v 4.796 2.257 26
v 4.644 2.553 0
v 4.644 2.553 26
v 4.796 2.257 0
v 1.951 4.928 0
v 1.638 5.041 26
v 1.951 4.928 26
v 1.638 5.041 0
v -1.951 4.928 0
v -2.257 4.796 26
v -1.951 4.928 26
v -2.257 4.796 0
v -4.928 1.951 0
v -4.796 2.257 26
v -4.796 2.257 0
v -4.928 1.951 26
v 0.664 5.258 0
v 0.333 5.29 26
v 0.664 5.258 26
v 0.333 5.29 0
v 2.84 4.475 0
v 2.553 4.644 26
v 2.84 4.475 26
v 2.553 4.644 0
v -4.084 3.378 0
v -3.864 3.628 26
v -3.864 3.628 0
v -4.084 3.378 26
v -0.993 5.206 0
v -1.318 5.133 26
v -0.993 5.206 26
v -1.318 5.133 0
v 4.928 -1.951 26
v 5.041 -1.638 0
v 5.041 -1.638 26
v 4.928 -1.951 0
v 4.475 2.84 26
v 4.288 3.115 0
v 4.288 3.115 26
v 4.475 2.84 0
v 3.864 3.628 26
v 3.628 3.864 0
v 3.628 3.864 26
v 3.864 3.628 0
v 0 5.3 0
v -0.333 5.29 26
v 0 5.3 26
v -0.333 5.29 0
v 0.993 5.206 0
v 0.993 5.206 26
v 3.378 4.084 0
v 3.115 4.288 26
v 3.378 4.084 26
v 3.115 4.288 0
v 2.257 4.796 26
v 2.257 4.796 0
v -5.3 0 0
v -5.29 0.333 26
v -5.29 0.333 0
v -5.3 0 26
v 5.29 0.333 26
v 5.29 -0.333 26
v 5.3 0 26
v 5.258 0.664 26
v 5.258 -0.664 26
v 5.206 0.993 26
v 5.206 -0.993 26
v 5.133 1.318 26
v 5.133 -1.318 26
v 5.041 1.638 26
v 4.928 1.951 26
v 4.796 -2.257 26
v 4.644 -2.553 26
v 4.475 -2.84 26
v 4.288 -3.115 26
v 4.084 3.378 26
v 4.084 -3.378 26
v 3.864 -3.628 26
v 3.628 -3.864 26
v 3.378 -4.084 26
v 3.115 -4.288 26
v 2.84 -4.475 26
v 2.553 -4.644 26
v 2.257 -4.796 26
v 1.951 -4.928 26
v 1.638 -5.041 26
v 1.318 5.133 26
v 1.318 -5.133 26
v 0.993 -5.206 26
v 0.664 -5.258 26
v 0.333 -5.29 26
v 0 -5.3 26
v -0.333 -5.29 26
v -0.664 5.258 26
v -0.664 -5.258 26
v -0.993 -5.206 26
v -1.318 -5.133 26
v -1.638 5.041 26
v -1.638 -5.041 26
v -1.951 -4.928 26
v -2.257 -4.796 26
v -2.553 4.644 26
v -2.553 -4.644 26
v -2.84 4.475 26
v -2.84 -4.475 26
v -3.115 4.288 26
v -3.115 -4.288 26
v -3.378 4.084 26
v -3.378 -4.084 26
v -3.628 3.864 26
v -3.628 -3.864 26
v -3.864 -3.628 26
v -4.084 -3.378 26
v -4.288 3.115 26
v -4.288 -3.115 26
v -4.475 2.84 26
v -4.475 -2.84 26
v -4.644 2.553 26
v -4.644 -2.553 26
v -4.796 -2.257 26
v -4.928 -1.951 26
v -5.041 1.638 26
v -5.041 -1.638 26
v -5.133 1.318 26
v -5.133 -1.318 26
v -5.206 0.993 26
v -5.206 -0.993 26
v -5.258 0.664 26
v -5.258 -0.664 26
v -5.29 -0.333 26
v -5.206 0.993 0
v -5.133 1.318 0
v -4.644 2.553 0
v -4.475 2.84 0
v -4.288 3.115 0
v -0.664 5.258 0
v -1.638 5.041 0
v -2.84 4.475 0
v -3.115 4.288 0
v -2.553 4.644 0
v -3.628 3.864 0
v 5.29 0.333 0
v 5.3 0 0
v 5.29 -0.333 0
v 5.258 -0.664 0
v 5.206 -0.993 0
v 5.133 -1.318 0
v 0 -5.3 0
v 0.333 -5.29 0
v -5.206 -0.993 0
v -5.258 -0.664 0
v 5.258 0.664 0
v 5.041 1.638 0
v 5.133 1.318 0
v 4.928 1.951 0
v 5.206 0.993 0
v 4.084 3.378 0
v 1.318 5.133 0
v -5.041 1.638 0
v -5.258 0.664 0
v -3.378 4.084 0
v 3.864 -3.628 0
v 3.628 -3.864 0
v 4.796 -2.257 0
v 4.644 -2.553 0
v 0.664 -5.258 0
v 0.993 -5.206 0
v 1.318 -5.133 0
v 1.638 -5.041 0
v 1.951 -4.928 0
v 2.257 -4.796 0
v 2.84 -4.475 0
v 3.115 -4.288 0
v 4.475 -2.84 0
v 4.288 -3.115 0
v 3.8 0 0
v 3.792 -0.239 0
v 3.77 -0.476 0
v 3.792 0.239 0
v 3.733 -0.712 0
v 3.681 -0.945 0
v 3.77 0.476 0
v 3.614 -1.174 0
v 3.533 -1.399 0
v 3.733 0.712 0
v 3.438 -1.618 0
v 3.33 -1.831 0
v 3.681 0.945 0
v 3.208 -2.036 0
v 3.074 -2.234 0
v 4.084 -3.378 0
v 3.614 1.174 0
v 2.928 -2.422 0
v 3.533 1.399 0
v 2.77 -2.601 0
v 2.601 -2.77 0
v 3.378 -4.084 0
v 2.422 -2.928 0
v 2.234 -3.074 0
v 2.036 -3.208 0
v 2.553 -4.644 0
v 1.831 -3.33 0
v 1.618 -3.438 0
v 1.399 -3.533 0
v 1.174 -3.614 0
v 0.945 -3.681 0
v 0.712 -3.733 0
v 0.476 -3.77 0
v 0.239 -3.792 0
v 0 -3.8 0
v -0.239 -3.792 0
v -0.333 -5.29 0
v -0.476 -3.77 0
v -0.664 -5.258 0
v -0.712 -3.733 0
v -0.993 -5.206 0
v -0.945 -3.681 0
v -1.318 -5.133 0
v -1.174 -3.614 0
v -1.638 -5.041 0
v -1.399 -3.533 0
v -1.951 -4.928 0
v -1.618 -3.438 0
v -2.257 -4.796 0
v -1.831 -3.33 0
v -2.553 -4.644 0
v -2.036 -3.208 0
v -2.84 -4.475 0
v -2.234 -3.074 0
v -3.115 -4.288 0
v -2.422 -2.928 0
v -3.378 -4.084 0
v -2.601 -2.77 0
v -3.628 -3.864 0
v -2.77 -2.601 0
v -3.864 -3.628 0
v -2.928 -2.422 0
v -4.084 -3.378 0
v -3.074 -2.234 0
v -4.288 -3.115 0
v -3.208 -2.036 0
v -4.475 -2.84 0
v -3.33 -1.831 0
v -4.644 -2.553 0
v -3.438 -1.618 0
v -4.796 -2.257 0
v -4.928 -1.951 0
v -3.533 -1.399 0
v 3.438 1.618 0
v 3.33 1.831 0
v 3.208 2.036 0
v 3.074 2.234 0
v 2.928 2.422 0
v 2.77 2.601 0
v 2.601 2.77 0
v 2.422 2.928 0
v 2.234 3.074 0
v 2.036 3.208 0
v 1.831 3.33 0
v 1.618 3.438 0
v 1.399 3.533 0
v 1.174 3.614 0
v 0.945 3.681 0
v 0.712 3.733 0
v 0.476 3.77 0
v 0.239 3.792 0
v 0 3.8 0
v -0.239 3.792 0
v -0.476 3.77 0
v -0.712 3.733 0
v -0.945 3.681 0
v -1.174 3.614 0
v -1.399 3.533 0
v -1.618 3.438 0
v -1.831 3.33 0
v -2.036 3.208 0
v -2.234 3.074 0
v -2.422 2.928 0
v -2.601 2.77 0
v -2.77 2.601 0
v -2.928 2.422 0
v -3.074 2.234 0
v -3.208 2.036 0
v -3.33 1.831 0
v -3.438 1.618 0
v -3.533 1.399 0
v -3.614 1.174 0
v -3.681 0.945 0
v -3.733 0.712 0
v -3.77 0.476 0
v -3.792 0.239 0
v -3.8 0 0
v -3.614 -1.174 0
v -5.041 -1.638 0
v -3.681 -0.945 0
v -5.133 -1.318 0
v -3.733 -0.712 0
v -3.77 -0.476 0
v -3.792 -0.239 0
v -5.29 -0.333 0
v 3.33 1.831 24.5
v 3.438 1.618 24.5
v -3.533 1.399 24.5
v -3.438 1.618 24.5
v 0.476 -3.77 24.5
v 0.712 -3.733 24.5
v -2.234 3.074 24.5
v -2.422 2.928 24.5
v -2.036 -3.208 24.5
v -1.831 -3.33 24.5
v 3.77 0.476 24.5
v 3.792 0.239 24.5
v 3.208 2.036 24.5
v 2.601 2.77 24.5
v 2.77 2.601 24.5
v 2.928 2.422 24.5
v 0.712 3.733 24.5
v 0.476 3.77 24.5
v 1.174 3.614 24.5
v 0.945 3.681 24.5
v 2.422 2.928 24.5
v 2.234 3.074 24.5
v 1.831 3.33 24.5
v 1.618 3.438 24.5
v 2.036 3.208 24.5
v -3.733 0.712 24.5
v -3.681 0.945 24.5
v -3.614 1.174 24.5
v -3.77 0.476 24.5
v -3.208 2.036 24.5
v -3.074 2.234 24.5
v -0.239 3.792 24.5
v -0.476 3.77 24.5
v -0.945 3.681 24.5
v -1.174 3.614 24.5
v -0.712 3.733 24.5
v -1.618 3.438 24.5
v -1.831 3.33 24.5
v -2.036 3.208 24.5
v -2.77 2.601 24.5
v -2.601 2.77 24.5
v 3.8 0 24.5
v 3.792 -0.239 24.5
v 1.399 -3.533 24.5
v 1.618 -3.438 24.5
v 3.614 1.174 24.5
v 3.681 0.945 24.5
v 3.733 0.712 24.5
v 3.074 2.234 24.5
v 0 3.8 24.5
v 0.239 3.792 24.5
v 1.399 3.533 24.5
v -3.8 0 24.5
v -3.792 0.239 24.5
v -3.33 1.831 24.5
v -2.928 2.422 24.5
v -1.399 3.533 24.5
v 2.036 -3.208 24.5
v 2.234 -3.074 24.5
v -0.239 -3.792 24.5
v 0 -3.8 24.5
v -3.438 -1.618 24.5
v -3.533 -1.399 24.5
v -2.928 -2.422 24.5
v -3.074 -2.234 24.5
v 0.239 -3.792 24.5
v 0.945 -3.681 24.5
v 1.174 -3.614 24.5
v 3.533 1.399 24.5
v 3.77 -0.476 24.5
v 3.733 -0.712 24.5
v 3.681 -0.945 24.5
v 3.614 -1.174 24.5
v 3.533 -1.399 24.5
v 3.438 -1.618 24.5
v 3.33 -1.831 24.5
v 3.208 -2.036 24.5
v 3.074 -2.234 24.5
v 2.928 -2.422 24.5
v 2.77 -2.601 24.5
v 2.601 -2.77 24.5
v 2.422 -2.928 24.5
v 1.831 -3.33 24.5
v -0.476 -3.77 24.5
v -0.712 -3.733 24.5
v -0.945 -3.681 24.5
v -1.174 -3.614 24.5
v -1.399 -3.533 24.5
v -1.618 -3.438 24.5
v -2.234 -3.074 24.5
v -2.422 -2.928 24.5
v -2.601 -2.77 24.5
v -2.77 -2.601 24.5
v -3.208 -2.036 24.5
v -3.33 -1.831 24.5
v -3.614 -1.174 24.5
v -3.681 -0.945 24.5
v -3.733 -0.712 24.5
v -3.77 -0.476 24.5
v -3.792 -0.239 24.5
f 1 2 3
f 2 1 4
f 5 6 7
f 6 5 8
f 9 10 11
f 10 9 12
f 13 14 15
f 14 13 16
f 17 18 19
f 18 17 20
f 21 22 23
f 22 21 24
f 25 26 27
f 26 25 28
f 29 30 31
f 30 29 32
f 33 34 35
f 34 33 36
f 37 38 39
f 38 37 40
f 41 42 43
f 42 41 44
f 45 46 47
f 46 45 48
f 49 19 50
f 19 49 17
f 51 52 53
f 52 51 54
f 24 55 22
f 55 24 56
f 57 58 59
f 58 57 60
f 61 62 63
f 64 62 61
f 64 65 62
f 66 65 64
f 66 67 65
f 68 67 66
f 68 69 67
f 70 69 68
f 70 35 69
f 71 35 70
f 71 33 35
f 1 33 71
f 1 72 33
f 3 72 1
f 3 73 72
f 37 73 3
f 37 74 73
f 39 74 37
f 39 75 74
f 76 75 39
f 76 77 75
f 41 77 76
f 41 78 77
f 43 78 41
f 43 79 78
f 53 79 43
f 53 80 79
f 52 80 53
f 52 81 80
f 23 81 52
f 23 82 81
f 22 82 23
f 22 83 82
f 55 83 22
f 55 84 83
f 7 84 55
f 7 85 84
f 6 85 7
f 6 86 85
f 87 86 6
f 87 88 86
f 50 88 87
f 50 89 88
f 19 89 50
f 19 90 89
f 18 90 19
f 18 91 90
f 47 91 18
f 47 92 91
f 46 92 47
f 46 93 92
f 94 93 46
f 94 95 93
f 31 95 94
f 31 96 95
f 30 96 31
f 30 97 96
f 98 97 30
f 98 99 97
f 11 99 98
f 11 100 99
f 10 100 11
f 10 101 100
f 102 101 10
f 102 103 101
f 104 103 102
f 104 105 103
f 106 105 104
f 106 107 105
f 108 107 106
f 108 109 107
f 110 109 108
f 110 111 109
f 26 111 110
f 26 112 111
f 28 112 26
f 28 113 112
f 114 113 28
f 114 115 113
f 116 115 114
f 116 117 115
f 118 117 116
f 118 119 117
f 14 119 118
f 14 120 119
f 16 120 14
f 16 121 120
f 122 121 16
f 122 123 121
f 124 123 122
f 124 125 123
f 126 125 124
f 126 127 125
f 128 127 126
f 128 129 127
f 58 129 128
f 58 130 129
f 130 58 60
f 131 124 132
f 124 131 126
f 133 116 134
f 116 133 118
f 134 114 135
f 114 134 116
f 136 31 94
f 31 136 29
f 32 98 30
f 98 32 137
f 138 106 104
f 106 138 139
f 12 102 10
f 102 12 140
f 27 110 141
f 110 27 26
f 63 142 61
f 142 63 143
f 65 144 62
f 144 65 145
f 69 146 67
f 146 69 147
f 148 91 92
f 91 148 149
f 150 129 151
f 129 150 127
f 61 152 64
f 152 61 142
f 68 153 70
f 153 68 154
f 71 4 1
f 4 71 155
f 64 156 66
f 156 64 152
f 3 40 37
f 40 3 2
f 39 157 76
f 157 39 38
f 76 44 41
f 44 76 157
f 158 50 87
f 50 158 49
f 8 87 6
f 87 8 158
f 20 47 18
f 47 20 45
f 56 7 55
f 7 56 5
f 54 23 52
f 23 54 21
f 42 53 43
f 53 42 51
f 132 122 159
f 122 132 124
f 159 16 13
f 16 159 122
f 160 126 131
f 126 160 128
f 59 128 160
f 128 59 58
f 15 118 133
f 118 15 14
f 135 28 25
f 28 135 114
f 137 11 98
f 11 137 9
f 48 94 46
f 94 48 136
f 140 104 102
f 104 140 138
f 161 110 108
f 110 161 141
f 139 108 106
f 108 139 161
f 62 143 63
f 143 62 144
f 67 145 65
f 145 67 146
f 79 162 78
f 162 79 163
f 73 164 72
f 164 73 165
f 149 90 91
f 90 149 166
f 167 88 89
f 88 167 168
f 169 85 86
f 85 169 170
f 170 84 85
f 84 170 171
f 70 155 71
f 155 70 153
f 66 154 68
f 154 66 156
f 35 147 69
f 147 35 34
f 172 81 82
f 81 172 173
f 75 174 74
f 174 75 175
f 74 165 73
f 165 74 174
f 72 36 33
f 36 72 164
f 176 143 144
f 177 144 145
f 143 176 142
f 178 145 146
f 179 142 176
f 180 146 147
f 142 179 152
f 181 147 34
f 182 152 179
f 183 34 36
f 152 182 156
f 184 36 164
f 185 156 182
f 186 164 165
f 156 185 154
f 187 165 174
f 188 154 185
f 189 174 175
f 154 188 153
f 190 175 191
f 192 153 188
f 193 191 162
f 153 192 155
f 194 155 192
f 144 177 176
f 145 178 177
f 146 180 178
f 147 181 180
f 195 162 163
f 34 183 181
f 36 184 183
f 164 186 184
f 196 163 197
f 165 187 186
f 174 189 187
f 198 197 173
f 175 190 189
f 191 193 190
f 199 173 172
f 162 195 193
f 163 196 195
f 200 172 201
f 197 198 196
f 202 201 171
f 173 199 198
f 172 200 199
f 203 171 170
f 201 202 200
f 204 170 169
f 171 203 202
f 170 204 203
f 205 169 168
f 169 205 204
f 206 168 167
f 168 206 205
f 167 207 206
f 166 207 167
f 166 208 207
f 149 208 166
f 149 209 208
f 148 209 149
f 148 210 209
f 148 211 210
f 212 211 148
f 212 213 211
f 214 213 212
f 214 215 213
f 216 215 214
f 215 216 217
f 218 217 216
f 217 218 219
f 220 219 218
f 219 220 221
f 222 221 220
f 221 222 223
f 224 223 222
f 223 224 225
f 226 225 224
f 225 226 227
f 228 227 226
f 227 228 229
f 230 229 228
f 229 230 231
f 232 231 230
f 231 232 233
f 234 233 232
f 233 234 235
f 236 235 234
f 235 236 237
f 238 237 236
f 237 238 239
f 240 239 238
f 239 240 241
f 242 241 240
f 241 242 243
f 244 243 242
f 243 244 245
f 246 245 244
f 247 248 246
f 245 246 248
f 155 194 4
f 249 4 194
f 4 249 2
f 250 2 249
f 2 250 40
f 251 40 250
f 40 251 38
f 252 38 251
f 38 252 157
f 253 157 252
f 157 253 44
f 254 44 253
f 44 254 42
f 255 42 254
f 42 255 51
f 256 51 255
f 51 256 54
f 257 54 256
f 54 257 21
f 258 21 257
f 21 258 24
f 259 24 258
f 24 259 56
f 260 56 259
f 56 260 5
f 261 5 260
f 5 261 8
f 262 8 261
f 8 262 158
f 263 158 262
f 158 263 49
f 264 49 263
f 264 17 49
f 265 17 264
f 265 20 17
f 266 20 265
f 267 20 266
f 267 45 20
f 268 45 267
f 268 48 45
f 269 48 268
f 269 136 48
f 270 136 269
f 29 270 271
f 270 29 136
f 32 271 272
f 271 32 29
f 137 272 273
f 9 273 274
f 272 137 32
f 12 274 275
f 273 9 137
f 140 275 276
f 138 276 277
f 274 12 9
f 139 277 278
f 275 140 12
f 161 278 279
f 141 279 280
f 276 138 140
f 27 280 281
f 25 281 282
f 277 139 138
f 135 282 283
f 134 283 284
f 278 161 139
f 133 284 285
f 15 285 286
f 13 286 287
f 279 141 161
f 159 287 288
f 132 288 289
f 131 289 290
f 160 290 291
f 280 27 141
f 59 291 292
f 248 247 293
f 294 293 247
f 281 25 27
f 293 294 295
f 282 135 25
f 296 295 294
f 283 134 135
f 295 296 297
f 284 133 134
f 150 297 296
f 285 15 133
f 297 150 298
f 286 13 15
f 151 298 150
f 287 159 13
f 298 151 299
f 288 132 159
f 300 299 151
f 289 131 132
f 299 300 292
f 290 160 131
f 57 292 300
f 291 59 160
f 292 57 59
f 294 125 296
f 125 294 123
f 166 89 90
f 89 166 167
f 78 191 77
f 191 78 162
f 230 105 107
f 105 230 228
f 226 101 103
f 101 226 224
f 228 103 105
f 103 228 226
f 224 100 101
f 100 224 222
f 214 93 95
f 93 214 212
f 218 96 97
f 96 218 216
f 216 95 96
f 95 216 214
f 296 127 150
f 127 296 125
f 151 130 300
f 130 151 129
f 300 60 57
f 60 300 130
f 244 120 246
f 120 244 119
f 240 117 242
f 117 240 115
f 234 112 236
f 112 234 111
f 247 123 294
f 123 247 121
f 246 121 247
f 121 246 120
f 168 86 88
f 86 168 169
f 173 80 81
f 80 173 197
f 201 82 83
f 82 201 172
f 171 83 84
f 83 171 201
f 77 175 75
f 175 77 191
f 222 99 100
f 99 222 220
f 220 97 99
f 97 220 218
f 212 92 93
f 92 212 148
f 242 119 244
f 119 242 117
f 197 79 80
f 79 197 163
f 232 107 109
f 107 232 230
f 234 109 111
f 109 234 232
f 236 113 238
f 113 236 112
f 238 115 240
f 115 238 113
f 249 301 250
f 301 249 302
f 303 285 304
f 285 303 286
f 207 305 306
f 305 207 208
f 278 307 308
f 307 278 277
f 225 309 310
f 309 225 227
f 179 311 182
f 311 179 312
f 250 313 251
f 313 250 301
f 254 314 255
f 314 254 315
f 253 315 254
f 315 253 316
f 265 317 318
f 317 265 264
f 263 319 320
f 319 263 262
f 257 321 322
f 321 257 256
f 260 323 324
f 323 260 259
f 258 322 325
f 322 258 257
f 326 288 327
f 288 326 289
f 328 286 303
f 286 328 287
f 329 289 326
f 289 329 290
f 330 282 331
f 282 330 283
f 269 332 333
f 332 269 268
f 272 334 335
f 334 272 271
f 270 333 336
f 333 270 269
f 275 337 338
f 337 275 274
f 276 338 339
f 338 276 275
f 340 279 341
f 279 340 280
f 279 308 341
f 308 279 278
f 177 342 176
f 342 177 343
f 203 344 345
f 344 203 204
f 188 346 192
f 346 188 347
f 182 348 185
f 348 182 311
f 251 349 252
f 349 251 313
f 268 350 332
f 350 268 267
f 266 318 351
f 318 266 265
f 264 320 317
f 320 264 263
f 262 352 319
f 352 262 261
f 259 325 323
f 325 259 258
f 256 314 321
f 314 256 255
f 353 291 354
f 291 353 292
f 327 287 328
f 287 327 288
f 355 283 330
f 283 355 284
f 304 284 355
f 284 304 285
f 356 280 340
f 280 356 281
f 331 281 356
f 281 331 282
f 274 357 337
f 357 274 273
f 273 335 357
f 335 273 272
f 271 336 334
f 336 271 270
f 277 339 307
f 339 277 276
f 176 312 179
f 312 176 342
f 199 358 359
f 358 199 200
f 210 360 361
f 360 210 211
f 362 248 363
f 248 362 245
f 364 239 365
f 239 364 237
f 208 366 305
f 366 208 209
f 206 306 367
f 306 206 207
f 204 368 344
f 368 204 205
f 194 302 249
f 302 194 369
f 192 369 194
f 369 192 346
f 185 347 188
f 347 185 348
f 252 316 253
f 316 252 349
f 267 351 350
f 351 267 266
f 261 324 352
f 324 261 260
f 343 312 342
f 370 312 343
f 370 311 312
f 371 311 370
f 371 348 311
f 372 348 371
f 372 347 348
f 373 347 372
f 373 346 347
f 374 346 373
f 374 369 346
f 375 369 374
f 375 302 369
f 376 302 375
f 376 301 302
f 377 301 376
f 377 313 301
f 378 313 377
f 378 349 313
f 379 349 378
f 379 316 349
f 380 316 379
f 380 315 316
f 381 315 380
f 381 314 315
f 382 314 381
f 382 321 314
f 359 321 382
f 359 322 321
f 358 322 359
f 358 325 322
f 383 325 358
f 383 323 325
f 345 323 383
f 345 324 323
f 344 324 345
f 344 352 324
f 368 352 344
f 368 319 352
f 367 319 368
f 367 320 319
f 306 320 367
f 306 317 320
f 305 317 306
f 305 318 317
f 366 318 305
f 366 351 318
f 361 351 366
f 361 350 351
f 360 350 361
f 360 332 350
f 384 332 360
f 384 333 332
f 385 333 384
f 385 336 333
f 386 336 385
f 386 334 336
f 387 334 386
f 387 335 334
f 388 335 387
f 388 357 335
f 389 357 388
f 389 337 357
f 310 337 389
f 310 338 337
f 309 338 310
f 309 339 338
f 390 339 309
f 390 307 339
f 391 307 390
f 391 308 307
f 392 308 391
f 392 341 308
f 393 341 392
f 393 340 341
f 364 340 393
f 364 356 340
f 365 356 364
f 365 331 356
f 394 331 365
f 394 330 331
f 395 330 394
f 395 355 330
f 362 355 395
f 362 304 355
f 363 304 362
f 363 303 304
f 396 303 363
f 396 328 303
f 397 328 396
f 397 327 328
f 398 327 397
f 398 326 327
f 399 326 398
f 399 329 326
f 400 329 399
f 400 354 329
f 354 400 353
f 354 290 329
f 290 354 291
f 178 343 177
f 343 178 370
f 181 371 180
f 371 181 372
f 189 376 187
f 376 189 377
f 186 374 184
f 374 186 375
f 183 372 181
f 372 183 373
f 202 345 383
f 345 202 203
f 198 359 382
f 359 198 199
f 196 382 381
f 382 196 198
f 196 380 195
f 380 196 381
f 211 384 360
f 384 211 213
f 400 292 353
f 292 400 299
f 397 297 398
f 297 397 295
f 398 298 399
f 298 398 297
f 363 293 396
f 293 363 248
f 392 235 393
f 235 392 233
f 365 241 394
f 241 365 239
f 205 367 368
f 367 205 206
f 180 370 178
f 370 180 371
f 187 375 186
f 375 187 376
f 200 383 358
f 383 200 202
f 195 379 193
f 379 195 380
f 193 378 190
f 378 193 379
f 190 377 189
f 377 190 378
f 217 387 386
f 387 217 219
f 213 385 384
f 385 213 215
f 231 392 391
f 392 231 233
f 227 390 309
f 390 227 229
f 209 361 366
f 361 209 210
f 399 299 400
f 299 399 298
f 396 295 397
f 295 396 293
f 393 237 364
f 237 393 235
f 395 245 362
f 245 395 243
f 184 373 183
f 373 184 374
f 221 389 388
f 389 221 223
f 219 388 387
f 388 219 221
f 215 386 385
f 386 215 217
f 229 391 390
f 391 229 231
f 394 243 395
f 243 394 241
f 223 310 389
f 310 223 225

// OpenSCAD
// file: ../motor_housing.scad
/*
Title:          motor_housing.scad
Description:    encapsulation for the motors
Authors:        Pau Roura (@proura)
Date:           20180610
Version:        0.1
Notes:

    Default values for module motor_housing

    module motor_housing(
        w_walls=1.5,        //with of the walls
        d_motor=7.2,        //motor diameter
        h_motor_body=26,    //motor housing height
        d_motor_shaft=1     //motor shaft diameter
    )
*/

module motor_housing(w_walls=1.5, d_motor=7.2, h_motor_body=26, d_motor_shaft=1){
    difference() {
                            cylinder(d=d_motor+w_walls*2, h=h_motor_body); 
        translate([0,0,-1]) cylinder(d=d_motor, h=h_motor_body-w_walls+1);
        translate([0,0,1])  cylinder(d=d_motor_shaft, h=h_motor_body);
    }     
}

motor_housing();
// main file
/*
Title:          motor_housing.scad for generate STL file
Description:    encapsulation for the motors
Authors:        Pau Roura (@proura)
Date:           20180610
Version:        0.1
Notes:

    Default values for module motor_housing

    module motor_housing(
        w_walls=1.5,        //with of the walls
        d_motor=7.2,        //motor diameter
        h_motor_body=26,    //motor housing height
        d_motor_shaft=1     //motor shaft diameter
    )
*/

use <../motor_housing.scad>;
$fn = 100;
motor_housing(w_walls=1.5, d_motor=7.6, h_motor_body=26, d_motor_shaft=0);
